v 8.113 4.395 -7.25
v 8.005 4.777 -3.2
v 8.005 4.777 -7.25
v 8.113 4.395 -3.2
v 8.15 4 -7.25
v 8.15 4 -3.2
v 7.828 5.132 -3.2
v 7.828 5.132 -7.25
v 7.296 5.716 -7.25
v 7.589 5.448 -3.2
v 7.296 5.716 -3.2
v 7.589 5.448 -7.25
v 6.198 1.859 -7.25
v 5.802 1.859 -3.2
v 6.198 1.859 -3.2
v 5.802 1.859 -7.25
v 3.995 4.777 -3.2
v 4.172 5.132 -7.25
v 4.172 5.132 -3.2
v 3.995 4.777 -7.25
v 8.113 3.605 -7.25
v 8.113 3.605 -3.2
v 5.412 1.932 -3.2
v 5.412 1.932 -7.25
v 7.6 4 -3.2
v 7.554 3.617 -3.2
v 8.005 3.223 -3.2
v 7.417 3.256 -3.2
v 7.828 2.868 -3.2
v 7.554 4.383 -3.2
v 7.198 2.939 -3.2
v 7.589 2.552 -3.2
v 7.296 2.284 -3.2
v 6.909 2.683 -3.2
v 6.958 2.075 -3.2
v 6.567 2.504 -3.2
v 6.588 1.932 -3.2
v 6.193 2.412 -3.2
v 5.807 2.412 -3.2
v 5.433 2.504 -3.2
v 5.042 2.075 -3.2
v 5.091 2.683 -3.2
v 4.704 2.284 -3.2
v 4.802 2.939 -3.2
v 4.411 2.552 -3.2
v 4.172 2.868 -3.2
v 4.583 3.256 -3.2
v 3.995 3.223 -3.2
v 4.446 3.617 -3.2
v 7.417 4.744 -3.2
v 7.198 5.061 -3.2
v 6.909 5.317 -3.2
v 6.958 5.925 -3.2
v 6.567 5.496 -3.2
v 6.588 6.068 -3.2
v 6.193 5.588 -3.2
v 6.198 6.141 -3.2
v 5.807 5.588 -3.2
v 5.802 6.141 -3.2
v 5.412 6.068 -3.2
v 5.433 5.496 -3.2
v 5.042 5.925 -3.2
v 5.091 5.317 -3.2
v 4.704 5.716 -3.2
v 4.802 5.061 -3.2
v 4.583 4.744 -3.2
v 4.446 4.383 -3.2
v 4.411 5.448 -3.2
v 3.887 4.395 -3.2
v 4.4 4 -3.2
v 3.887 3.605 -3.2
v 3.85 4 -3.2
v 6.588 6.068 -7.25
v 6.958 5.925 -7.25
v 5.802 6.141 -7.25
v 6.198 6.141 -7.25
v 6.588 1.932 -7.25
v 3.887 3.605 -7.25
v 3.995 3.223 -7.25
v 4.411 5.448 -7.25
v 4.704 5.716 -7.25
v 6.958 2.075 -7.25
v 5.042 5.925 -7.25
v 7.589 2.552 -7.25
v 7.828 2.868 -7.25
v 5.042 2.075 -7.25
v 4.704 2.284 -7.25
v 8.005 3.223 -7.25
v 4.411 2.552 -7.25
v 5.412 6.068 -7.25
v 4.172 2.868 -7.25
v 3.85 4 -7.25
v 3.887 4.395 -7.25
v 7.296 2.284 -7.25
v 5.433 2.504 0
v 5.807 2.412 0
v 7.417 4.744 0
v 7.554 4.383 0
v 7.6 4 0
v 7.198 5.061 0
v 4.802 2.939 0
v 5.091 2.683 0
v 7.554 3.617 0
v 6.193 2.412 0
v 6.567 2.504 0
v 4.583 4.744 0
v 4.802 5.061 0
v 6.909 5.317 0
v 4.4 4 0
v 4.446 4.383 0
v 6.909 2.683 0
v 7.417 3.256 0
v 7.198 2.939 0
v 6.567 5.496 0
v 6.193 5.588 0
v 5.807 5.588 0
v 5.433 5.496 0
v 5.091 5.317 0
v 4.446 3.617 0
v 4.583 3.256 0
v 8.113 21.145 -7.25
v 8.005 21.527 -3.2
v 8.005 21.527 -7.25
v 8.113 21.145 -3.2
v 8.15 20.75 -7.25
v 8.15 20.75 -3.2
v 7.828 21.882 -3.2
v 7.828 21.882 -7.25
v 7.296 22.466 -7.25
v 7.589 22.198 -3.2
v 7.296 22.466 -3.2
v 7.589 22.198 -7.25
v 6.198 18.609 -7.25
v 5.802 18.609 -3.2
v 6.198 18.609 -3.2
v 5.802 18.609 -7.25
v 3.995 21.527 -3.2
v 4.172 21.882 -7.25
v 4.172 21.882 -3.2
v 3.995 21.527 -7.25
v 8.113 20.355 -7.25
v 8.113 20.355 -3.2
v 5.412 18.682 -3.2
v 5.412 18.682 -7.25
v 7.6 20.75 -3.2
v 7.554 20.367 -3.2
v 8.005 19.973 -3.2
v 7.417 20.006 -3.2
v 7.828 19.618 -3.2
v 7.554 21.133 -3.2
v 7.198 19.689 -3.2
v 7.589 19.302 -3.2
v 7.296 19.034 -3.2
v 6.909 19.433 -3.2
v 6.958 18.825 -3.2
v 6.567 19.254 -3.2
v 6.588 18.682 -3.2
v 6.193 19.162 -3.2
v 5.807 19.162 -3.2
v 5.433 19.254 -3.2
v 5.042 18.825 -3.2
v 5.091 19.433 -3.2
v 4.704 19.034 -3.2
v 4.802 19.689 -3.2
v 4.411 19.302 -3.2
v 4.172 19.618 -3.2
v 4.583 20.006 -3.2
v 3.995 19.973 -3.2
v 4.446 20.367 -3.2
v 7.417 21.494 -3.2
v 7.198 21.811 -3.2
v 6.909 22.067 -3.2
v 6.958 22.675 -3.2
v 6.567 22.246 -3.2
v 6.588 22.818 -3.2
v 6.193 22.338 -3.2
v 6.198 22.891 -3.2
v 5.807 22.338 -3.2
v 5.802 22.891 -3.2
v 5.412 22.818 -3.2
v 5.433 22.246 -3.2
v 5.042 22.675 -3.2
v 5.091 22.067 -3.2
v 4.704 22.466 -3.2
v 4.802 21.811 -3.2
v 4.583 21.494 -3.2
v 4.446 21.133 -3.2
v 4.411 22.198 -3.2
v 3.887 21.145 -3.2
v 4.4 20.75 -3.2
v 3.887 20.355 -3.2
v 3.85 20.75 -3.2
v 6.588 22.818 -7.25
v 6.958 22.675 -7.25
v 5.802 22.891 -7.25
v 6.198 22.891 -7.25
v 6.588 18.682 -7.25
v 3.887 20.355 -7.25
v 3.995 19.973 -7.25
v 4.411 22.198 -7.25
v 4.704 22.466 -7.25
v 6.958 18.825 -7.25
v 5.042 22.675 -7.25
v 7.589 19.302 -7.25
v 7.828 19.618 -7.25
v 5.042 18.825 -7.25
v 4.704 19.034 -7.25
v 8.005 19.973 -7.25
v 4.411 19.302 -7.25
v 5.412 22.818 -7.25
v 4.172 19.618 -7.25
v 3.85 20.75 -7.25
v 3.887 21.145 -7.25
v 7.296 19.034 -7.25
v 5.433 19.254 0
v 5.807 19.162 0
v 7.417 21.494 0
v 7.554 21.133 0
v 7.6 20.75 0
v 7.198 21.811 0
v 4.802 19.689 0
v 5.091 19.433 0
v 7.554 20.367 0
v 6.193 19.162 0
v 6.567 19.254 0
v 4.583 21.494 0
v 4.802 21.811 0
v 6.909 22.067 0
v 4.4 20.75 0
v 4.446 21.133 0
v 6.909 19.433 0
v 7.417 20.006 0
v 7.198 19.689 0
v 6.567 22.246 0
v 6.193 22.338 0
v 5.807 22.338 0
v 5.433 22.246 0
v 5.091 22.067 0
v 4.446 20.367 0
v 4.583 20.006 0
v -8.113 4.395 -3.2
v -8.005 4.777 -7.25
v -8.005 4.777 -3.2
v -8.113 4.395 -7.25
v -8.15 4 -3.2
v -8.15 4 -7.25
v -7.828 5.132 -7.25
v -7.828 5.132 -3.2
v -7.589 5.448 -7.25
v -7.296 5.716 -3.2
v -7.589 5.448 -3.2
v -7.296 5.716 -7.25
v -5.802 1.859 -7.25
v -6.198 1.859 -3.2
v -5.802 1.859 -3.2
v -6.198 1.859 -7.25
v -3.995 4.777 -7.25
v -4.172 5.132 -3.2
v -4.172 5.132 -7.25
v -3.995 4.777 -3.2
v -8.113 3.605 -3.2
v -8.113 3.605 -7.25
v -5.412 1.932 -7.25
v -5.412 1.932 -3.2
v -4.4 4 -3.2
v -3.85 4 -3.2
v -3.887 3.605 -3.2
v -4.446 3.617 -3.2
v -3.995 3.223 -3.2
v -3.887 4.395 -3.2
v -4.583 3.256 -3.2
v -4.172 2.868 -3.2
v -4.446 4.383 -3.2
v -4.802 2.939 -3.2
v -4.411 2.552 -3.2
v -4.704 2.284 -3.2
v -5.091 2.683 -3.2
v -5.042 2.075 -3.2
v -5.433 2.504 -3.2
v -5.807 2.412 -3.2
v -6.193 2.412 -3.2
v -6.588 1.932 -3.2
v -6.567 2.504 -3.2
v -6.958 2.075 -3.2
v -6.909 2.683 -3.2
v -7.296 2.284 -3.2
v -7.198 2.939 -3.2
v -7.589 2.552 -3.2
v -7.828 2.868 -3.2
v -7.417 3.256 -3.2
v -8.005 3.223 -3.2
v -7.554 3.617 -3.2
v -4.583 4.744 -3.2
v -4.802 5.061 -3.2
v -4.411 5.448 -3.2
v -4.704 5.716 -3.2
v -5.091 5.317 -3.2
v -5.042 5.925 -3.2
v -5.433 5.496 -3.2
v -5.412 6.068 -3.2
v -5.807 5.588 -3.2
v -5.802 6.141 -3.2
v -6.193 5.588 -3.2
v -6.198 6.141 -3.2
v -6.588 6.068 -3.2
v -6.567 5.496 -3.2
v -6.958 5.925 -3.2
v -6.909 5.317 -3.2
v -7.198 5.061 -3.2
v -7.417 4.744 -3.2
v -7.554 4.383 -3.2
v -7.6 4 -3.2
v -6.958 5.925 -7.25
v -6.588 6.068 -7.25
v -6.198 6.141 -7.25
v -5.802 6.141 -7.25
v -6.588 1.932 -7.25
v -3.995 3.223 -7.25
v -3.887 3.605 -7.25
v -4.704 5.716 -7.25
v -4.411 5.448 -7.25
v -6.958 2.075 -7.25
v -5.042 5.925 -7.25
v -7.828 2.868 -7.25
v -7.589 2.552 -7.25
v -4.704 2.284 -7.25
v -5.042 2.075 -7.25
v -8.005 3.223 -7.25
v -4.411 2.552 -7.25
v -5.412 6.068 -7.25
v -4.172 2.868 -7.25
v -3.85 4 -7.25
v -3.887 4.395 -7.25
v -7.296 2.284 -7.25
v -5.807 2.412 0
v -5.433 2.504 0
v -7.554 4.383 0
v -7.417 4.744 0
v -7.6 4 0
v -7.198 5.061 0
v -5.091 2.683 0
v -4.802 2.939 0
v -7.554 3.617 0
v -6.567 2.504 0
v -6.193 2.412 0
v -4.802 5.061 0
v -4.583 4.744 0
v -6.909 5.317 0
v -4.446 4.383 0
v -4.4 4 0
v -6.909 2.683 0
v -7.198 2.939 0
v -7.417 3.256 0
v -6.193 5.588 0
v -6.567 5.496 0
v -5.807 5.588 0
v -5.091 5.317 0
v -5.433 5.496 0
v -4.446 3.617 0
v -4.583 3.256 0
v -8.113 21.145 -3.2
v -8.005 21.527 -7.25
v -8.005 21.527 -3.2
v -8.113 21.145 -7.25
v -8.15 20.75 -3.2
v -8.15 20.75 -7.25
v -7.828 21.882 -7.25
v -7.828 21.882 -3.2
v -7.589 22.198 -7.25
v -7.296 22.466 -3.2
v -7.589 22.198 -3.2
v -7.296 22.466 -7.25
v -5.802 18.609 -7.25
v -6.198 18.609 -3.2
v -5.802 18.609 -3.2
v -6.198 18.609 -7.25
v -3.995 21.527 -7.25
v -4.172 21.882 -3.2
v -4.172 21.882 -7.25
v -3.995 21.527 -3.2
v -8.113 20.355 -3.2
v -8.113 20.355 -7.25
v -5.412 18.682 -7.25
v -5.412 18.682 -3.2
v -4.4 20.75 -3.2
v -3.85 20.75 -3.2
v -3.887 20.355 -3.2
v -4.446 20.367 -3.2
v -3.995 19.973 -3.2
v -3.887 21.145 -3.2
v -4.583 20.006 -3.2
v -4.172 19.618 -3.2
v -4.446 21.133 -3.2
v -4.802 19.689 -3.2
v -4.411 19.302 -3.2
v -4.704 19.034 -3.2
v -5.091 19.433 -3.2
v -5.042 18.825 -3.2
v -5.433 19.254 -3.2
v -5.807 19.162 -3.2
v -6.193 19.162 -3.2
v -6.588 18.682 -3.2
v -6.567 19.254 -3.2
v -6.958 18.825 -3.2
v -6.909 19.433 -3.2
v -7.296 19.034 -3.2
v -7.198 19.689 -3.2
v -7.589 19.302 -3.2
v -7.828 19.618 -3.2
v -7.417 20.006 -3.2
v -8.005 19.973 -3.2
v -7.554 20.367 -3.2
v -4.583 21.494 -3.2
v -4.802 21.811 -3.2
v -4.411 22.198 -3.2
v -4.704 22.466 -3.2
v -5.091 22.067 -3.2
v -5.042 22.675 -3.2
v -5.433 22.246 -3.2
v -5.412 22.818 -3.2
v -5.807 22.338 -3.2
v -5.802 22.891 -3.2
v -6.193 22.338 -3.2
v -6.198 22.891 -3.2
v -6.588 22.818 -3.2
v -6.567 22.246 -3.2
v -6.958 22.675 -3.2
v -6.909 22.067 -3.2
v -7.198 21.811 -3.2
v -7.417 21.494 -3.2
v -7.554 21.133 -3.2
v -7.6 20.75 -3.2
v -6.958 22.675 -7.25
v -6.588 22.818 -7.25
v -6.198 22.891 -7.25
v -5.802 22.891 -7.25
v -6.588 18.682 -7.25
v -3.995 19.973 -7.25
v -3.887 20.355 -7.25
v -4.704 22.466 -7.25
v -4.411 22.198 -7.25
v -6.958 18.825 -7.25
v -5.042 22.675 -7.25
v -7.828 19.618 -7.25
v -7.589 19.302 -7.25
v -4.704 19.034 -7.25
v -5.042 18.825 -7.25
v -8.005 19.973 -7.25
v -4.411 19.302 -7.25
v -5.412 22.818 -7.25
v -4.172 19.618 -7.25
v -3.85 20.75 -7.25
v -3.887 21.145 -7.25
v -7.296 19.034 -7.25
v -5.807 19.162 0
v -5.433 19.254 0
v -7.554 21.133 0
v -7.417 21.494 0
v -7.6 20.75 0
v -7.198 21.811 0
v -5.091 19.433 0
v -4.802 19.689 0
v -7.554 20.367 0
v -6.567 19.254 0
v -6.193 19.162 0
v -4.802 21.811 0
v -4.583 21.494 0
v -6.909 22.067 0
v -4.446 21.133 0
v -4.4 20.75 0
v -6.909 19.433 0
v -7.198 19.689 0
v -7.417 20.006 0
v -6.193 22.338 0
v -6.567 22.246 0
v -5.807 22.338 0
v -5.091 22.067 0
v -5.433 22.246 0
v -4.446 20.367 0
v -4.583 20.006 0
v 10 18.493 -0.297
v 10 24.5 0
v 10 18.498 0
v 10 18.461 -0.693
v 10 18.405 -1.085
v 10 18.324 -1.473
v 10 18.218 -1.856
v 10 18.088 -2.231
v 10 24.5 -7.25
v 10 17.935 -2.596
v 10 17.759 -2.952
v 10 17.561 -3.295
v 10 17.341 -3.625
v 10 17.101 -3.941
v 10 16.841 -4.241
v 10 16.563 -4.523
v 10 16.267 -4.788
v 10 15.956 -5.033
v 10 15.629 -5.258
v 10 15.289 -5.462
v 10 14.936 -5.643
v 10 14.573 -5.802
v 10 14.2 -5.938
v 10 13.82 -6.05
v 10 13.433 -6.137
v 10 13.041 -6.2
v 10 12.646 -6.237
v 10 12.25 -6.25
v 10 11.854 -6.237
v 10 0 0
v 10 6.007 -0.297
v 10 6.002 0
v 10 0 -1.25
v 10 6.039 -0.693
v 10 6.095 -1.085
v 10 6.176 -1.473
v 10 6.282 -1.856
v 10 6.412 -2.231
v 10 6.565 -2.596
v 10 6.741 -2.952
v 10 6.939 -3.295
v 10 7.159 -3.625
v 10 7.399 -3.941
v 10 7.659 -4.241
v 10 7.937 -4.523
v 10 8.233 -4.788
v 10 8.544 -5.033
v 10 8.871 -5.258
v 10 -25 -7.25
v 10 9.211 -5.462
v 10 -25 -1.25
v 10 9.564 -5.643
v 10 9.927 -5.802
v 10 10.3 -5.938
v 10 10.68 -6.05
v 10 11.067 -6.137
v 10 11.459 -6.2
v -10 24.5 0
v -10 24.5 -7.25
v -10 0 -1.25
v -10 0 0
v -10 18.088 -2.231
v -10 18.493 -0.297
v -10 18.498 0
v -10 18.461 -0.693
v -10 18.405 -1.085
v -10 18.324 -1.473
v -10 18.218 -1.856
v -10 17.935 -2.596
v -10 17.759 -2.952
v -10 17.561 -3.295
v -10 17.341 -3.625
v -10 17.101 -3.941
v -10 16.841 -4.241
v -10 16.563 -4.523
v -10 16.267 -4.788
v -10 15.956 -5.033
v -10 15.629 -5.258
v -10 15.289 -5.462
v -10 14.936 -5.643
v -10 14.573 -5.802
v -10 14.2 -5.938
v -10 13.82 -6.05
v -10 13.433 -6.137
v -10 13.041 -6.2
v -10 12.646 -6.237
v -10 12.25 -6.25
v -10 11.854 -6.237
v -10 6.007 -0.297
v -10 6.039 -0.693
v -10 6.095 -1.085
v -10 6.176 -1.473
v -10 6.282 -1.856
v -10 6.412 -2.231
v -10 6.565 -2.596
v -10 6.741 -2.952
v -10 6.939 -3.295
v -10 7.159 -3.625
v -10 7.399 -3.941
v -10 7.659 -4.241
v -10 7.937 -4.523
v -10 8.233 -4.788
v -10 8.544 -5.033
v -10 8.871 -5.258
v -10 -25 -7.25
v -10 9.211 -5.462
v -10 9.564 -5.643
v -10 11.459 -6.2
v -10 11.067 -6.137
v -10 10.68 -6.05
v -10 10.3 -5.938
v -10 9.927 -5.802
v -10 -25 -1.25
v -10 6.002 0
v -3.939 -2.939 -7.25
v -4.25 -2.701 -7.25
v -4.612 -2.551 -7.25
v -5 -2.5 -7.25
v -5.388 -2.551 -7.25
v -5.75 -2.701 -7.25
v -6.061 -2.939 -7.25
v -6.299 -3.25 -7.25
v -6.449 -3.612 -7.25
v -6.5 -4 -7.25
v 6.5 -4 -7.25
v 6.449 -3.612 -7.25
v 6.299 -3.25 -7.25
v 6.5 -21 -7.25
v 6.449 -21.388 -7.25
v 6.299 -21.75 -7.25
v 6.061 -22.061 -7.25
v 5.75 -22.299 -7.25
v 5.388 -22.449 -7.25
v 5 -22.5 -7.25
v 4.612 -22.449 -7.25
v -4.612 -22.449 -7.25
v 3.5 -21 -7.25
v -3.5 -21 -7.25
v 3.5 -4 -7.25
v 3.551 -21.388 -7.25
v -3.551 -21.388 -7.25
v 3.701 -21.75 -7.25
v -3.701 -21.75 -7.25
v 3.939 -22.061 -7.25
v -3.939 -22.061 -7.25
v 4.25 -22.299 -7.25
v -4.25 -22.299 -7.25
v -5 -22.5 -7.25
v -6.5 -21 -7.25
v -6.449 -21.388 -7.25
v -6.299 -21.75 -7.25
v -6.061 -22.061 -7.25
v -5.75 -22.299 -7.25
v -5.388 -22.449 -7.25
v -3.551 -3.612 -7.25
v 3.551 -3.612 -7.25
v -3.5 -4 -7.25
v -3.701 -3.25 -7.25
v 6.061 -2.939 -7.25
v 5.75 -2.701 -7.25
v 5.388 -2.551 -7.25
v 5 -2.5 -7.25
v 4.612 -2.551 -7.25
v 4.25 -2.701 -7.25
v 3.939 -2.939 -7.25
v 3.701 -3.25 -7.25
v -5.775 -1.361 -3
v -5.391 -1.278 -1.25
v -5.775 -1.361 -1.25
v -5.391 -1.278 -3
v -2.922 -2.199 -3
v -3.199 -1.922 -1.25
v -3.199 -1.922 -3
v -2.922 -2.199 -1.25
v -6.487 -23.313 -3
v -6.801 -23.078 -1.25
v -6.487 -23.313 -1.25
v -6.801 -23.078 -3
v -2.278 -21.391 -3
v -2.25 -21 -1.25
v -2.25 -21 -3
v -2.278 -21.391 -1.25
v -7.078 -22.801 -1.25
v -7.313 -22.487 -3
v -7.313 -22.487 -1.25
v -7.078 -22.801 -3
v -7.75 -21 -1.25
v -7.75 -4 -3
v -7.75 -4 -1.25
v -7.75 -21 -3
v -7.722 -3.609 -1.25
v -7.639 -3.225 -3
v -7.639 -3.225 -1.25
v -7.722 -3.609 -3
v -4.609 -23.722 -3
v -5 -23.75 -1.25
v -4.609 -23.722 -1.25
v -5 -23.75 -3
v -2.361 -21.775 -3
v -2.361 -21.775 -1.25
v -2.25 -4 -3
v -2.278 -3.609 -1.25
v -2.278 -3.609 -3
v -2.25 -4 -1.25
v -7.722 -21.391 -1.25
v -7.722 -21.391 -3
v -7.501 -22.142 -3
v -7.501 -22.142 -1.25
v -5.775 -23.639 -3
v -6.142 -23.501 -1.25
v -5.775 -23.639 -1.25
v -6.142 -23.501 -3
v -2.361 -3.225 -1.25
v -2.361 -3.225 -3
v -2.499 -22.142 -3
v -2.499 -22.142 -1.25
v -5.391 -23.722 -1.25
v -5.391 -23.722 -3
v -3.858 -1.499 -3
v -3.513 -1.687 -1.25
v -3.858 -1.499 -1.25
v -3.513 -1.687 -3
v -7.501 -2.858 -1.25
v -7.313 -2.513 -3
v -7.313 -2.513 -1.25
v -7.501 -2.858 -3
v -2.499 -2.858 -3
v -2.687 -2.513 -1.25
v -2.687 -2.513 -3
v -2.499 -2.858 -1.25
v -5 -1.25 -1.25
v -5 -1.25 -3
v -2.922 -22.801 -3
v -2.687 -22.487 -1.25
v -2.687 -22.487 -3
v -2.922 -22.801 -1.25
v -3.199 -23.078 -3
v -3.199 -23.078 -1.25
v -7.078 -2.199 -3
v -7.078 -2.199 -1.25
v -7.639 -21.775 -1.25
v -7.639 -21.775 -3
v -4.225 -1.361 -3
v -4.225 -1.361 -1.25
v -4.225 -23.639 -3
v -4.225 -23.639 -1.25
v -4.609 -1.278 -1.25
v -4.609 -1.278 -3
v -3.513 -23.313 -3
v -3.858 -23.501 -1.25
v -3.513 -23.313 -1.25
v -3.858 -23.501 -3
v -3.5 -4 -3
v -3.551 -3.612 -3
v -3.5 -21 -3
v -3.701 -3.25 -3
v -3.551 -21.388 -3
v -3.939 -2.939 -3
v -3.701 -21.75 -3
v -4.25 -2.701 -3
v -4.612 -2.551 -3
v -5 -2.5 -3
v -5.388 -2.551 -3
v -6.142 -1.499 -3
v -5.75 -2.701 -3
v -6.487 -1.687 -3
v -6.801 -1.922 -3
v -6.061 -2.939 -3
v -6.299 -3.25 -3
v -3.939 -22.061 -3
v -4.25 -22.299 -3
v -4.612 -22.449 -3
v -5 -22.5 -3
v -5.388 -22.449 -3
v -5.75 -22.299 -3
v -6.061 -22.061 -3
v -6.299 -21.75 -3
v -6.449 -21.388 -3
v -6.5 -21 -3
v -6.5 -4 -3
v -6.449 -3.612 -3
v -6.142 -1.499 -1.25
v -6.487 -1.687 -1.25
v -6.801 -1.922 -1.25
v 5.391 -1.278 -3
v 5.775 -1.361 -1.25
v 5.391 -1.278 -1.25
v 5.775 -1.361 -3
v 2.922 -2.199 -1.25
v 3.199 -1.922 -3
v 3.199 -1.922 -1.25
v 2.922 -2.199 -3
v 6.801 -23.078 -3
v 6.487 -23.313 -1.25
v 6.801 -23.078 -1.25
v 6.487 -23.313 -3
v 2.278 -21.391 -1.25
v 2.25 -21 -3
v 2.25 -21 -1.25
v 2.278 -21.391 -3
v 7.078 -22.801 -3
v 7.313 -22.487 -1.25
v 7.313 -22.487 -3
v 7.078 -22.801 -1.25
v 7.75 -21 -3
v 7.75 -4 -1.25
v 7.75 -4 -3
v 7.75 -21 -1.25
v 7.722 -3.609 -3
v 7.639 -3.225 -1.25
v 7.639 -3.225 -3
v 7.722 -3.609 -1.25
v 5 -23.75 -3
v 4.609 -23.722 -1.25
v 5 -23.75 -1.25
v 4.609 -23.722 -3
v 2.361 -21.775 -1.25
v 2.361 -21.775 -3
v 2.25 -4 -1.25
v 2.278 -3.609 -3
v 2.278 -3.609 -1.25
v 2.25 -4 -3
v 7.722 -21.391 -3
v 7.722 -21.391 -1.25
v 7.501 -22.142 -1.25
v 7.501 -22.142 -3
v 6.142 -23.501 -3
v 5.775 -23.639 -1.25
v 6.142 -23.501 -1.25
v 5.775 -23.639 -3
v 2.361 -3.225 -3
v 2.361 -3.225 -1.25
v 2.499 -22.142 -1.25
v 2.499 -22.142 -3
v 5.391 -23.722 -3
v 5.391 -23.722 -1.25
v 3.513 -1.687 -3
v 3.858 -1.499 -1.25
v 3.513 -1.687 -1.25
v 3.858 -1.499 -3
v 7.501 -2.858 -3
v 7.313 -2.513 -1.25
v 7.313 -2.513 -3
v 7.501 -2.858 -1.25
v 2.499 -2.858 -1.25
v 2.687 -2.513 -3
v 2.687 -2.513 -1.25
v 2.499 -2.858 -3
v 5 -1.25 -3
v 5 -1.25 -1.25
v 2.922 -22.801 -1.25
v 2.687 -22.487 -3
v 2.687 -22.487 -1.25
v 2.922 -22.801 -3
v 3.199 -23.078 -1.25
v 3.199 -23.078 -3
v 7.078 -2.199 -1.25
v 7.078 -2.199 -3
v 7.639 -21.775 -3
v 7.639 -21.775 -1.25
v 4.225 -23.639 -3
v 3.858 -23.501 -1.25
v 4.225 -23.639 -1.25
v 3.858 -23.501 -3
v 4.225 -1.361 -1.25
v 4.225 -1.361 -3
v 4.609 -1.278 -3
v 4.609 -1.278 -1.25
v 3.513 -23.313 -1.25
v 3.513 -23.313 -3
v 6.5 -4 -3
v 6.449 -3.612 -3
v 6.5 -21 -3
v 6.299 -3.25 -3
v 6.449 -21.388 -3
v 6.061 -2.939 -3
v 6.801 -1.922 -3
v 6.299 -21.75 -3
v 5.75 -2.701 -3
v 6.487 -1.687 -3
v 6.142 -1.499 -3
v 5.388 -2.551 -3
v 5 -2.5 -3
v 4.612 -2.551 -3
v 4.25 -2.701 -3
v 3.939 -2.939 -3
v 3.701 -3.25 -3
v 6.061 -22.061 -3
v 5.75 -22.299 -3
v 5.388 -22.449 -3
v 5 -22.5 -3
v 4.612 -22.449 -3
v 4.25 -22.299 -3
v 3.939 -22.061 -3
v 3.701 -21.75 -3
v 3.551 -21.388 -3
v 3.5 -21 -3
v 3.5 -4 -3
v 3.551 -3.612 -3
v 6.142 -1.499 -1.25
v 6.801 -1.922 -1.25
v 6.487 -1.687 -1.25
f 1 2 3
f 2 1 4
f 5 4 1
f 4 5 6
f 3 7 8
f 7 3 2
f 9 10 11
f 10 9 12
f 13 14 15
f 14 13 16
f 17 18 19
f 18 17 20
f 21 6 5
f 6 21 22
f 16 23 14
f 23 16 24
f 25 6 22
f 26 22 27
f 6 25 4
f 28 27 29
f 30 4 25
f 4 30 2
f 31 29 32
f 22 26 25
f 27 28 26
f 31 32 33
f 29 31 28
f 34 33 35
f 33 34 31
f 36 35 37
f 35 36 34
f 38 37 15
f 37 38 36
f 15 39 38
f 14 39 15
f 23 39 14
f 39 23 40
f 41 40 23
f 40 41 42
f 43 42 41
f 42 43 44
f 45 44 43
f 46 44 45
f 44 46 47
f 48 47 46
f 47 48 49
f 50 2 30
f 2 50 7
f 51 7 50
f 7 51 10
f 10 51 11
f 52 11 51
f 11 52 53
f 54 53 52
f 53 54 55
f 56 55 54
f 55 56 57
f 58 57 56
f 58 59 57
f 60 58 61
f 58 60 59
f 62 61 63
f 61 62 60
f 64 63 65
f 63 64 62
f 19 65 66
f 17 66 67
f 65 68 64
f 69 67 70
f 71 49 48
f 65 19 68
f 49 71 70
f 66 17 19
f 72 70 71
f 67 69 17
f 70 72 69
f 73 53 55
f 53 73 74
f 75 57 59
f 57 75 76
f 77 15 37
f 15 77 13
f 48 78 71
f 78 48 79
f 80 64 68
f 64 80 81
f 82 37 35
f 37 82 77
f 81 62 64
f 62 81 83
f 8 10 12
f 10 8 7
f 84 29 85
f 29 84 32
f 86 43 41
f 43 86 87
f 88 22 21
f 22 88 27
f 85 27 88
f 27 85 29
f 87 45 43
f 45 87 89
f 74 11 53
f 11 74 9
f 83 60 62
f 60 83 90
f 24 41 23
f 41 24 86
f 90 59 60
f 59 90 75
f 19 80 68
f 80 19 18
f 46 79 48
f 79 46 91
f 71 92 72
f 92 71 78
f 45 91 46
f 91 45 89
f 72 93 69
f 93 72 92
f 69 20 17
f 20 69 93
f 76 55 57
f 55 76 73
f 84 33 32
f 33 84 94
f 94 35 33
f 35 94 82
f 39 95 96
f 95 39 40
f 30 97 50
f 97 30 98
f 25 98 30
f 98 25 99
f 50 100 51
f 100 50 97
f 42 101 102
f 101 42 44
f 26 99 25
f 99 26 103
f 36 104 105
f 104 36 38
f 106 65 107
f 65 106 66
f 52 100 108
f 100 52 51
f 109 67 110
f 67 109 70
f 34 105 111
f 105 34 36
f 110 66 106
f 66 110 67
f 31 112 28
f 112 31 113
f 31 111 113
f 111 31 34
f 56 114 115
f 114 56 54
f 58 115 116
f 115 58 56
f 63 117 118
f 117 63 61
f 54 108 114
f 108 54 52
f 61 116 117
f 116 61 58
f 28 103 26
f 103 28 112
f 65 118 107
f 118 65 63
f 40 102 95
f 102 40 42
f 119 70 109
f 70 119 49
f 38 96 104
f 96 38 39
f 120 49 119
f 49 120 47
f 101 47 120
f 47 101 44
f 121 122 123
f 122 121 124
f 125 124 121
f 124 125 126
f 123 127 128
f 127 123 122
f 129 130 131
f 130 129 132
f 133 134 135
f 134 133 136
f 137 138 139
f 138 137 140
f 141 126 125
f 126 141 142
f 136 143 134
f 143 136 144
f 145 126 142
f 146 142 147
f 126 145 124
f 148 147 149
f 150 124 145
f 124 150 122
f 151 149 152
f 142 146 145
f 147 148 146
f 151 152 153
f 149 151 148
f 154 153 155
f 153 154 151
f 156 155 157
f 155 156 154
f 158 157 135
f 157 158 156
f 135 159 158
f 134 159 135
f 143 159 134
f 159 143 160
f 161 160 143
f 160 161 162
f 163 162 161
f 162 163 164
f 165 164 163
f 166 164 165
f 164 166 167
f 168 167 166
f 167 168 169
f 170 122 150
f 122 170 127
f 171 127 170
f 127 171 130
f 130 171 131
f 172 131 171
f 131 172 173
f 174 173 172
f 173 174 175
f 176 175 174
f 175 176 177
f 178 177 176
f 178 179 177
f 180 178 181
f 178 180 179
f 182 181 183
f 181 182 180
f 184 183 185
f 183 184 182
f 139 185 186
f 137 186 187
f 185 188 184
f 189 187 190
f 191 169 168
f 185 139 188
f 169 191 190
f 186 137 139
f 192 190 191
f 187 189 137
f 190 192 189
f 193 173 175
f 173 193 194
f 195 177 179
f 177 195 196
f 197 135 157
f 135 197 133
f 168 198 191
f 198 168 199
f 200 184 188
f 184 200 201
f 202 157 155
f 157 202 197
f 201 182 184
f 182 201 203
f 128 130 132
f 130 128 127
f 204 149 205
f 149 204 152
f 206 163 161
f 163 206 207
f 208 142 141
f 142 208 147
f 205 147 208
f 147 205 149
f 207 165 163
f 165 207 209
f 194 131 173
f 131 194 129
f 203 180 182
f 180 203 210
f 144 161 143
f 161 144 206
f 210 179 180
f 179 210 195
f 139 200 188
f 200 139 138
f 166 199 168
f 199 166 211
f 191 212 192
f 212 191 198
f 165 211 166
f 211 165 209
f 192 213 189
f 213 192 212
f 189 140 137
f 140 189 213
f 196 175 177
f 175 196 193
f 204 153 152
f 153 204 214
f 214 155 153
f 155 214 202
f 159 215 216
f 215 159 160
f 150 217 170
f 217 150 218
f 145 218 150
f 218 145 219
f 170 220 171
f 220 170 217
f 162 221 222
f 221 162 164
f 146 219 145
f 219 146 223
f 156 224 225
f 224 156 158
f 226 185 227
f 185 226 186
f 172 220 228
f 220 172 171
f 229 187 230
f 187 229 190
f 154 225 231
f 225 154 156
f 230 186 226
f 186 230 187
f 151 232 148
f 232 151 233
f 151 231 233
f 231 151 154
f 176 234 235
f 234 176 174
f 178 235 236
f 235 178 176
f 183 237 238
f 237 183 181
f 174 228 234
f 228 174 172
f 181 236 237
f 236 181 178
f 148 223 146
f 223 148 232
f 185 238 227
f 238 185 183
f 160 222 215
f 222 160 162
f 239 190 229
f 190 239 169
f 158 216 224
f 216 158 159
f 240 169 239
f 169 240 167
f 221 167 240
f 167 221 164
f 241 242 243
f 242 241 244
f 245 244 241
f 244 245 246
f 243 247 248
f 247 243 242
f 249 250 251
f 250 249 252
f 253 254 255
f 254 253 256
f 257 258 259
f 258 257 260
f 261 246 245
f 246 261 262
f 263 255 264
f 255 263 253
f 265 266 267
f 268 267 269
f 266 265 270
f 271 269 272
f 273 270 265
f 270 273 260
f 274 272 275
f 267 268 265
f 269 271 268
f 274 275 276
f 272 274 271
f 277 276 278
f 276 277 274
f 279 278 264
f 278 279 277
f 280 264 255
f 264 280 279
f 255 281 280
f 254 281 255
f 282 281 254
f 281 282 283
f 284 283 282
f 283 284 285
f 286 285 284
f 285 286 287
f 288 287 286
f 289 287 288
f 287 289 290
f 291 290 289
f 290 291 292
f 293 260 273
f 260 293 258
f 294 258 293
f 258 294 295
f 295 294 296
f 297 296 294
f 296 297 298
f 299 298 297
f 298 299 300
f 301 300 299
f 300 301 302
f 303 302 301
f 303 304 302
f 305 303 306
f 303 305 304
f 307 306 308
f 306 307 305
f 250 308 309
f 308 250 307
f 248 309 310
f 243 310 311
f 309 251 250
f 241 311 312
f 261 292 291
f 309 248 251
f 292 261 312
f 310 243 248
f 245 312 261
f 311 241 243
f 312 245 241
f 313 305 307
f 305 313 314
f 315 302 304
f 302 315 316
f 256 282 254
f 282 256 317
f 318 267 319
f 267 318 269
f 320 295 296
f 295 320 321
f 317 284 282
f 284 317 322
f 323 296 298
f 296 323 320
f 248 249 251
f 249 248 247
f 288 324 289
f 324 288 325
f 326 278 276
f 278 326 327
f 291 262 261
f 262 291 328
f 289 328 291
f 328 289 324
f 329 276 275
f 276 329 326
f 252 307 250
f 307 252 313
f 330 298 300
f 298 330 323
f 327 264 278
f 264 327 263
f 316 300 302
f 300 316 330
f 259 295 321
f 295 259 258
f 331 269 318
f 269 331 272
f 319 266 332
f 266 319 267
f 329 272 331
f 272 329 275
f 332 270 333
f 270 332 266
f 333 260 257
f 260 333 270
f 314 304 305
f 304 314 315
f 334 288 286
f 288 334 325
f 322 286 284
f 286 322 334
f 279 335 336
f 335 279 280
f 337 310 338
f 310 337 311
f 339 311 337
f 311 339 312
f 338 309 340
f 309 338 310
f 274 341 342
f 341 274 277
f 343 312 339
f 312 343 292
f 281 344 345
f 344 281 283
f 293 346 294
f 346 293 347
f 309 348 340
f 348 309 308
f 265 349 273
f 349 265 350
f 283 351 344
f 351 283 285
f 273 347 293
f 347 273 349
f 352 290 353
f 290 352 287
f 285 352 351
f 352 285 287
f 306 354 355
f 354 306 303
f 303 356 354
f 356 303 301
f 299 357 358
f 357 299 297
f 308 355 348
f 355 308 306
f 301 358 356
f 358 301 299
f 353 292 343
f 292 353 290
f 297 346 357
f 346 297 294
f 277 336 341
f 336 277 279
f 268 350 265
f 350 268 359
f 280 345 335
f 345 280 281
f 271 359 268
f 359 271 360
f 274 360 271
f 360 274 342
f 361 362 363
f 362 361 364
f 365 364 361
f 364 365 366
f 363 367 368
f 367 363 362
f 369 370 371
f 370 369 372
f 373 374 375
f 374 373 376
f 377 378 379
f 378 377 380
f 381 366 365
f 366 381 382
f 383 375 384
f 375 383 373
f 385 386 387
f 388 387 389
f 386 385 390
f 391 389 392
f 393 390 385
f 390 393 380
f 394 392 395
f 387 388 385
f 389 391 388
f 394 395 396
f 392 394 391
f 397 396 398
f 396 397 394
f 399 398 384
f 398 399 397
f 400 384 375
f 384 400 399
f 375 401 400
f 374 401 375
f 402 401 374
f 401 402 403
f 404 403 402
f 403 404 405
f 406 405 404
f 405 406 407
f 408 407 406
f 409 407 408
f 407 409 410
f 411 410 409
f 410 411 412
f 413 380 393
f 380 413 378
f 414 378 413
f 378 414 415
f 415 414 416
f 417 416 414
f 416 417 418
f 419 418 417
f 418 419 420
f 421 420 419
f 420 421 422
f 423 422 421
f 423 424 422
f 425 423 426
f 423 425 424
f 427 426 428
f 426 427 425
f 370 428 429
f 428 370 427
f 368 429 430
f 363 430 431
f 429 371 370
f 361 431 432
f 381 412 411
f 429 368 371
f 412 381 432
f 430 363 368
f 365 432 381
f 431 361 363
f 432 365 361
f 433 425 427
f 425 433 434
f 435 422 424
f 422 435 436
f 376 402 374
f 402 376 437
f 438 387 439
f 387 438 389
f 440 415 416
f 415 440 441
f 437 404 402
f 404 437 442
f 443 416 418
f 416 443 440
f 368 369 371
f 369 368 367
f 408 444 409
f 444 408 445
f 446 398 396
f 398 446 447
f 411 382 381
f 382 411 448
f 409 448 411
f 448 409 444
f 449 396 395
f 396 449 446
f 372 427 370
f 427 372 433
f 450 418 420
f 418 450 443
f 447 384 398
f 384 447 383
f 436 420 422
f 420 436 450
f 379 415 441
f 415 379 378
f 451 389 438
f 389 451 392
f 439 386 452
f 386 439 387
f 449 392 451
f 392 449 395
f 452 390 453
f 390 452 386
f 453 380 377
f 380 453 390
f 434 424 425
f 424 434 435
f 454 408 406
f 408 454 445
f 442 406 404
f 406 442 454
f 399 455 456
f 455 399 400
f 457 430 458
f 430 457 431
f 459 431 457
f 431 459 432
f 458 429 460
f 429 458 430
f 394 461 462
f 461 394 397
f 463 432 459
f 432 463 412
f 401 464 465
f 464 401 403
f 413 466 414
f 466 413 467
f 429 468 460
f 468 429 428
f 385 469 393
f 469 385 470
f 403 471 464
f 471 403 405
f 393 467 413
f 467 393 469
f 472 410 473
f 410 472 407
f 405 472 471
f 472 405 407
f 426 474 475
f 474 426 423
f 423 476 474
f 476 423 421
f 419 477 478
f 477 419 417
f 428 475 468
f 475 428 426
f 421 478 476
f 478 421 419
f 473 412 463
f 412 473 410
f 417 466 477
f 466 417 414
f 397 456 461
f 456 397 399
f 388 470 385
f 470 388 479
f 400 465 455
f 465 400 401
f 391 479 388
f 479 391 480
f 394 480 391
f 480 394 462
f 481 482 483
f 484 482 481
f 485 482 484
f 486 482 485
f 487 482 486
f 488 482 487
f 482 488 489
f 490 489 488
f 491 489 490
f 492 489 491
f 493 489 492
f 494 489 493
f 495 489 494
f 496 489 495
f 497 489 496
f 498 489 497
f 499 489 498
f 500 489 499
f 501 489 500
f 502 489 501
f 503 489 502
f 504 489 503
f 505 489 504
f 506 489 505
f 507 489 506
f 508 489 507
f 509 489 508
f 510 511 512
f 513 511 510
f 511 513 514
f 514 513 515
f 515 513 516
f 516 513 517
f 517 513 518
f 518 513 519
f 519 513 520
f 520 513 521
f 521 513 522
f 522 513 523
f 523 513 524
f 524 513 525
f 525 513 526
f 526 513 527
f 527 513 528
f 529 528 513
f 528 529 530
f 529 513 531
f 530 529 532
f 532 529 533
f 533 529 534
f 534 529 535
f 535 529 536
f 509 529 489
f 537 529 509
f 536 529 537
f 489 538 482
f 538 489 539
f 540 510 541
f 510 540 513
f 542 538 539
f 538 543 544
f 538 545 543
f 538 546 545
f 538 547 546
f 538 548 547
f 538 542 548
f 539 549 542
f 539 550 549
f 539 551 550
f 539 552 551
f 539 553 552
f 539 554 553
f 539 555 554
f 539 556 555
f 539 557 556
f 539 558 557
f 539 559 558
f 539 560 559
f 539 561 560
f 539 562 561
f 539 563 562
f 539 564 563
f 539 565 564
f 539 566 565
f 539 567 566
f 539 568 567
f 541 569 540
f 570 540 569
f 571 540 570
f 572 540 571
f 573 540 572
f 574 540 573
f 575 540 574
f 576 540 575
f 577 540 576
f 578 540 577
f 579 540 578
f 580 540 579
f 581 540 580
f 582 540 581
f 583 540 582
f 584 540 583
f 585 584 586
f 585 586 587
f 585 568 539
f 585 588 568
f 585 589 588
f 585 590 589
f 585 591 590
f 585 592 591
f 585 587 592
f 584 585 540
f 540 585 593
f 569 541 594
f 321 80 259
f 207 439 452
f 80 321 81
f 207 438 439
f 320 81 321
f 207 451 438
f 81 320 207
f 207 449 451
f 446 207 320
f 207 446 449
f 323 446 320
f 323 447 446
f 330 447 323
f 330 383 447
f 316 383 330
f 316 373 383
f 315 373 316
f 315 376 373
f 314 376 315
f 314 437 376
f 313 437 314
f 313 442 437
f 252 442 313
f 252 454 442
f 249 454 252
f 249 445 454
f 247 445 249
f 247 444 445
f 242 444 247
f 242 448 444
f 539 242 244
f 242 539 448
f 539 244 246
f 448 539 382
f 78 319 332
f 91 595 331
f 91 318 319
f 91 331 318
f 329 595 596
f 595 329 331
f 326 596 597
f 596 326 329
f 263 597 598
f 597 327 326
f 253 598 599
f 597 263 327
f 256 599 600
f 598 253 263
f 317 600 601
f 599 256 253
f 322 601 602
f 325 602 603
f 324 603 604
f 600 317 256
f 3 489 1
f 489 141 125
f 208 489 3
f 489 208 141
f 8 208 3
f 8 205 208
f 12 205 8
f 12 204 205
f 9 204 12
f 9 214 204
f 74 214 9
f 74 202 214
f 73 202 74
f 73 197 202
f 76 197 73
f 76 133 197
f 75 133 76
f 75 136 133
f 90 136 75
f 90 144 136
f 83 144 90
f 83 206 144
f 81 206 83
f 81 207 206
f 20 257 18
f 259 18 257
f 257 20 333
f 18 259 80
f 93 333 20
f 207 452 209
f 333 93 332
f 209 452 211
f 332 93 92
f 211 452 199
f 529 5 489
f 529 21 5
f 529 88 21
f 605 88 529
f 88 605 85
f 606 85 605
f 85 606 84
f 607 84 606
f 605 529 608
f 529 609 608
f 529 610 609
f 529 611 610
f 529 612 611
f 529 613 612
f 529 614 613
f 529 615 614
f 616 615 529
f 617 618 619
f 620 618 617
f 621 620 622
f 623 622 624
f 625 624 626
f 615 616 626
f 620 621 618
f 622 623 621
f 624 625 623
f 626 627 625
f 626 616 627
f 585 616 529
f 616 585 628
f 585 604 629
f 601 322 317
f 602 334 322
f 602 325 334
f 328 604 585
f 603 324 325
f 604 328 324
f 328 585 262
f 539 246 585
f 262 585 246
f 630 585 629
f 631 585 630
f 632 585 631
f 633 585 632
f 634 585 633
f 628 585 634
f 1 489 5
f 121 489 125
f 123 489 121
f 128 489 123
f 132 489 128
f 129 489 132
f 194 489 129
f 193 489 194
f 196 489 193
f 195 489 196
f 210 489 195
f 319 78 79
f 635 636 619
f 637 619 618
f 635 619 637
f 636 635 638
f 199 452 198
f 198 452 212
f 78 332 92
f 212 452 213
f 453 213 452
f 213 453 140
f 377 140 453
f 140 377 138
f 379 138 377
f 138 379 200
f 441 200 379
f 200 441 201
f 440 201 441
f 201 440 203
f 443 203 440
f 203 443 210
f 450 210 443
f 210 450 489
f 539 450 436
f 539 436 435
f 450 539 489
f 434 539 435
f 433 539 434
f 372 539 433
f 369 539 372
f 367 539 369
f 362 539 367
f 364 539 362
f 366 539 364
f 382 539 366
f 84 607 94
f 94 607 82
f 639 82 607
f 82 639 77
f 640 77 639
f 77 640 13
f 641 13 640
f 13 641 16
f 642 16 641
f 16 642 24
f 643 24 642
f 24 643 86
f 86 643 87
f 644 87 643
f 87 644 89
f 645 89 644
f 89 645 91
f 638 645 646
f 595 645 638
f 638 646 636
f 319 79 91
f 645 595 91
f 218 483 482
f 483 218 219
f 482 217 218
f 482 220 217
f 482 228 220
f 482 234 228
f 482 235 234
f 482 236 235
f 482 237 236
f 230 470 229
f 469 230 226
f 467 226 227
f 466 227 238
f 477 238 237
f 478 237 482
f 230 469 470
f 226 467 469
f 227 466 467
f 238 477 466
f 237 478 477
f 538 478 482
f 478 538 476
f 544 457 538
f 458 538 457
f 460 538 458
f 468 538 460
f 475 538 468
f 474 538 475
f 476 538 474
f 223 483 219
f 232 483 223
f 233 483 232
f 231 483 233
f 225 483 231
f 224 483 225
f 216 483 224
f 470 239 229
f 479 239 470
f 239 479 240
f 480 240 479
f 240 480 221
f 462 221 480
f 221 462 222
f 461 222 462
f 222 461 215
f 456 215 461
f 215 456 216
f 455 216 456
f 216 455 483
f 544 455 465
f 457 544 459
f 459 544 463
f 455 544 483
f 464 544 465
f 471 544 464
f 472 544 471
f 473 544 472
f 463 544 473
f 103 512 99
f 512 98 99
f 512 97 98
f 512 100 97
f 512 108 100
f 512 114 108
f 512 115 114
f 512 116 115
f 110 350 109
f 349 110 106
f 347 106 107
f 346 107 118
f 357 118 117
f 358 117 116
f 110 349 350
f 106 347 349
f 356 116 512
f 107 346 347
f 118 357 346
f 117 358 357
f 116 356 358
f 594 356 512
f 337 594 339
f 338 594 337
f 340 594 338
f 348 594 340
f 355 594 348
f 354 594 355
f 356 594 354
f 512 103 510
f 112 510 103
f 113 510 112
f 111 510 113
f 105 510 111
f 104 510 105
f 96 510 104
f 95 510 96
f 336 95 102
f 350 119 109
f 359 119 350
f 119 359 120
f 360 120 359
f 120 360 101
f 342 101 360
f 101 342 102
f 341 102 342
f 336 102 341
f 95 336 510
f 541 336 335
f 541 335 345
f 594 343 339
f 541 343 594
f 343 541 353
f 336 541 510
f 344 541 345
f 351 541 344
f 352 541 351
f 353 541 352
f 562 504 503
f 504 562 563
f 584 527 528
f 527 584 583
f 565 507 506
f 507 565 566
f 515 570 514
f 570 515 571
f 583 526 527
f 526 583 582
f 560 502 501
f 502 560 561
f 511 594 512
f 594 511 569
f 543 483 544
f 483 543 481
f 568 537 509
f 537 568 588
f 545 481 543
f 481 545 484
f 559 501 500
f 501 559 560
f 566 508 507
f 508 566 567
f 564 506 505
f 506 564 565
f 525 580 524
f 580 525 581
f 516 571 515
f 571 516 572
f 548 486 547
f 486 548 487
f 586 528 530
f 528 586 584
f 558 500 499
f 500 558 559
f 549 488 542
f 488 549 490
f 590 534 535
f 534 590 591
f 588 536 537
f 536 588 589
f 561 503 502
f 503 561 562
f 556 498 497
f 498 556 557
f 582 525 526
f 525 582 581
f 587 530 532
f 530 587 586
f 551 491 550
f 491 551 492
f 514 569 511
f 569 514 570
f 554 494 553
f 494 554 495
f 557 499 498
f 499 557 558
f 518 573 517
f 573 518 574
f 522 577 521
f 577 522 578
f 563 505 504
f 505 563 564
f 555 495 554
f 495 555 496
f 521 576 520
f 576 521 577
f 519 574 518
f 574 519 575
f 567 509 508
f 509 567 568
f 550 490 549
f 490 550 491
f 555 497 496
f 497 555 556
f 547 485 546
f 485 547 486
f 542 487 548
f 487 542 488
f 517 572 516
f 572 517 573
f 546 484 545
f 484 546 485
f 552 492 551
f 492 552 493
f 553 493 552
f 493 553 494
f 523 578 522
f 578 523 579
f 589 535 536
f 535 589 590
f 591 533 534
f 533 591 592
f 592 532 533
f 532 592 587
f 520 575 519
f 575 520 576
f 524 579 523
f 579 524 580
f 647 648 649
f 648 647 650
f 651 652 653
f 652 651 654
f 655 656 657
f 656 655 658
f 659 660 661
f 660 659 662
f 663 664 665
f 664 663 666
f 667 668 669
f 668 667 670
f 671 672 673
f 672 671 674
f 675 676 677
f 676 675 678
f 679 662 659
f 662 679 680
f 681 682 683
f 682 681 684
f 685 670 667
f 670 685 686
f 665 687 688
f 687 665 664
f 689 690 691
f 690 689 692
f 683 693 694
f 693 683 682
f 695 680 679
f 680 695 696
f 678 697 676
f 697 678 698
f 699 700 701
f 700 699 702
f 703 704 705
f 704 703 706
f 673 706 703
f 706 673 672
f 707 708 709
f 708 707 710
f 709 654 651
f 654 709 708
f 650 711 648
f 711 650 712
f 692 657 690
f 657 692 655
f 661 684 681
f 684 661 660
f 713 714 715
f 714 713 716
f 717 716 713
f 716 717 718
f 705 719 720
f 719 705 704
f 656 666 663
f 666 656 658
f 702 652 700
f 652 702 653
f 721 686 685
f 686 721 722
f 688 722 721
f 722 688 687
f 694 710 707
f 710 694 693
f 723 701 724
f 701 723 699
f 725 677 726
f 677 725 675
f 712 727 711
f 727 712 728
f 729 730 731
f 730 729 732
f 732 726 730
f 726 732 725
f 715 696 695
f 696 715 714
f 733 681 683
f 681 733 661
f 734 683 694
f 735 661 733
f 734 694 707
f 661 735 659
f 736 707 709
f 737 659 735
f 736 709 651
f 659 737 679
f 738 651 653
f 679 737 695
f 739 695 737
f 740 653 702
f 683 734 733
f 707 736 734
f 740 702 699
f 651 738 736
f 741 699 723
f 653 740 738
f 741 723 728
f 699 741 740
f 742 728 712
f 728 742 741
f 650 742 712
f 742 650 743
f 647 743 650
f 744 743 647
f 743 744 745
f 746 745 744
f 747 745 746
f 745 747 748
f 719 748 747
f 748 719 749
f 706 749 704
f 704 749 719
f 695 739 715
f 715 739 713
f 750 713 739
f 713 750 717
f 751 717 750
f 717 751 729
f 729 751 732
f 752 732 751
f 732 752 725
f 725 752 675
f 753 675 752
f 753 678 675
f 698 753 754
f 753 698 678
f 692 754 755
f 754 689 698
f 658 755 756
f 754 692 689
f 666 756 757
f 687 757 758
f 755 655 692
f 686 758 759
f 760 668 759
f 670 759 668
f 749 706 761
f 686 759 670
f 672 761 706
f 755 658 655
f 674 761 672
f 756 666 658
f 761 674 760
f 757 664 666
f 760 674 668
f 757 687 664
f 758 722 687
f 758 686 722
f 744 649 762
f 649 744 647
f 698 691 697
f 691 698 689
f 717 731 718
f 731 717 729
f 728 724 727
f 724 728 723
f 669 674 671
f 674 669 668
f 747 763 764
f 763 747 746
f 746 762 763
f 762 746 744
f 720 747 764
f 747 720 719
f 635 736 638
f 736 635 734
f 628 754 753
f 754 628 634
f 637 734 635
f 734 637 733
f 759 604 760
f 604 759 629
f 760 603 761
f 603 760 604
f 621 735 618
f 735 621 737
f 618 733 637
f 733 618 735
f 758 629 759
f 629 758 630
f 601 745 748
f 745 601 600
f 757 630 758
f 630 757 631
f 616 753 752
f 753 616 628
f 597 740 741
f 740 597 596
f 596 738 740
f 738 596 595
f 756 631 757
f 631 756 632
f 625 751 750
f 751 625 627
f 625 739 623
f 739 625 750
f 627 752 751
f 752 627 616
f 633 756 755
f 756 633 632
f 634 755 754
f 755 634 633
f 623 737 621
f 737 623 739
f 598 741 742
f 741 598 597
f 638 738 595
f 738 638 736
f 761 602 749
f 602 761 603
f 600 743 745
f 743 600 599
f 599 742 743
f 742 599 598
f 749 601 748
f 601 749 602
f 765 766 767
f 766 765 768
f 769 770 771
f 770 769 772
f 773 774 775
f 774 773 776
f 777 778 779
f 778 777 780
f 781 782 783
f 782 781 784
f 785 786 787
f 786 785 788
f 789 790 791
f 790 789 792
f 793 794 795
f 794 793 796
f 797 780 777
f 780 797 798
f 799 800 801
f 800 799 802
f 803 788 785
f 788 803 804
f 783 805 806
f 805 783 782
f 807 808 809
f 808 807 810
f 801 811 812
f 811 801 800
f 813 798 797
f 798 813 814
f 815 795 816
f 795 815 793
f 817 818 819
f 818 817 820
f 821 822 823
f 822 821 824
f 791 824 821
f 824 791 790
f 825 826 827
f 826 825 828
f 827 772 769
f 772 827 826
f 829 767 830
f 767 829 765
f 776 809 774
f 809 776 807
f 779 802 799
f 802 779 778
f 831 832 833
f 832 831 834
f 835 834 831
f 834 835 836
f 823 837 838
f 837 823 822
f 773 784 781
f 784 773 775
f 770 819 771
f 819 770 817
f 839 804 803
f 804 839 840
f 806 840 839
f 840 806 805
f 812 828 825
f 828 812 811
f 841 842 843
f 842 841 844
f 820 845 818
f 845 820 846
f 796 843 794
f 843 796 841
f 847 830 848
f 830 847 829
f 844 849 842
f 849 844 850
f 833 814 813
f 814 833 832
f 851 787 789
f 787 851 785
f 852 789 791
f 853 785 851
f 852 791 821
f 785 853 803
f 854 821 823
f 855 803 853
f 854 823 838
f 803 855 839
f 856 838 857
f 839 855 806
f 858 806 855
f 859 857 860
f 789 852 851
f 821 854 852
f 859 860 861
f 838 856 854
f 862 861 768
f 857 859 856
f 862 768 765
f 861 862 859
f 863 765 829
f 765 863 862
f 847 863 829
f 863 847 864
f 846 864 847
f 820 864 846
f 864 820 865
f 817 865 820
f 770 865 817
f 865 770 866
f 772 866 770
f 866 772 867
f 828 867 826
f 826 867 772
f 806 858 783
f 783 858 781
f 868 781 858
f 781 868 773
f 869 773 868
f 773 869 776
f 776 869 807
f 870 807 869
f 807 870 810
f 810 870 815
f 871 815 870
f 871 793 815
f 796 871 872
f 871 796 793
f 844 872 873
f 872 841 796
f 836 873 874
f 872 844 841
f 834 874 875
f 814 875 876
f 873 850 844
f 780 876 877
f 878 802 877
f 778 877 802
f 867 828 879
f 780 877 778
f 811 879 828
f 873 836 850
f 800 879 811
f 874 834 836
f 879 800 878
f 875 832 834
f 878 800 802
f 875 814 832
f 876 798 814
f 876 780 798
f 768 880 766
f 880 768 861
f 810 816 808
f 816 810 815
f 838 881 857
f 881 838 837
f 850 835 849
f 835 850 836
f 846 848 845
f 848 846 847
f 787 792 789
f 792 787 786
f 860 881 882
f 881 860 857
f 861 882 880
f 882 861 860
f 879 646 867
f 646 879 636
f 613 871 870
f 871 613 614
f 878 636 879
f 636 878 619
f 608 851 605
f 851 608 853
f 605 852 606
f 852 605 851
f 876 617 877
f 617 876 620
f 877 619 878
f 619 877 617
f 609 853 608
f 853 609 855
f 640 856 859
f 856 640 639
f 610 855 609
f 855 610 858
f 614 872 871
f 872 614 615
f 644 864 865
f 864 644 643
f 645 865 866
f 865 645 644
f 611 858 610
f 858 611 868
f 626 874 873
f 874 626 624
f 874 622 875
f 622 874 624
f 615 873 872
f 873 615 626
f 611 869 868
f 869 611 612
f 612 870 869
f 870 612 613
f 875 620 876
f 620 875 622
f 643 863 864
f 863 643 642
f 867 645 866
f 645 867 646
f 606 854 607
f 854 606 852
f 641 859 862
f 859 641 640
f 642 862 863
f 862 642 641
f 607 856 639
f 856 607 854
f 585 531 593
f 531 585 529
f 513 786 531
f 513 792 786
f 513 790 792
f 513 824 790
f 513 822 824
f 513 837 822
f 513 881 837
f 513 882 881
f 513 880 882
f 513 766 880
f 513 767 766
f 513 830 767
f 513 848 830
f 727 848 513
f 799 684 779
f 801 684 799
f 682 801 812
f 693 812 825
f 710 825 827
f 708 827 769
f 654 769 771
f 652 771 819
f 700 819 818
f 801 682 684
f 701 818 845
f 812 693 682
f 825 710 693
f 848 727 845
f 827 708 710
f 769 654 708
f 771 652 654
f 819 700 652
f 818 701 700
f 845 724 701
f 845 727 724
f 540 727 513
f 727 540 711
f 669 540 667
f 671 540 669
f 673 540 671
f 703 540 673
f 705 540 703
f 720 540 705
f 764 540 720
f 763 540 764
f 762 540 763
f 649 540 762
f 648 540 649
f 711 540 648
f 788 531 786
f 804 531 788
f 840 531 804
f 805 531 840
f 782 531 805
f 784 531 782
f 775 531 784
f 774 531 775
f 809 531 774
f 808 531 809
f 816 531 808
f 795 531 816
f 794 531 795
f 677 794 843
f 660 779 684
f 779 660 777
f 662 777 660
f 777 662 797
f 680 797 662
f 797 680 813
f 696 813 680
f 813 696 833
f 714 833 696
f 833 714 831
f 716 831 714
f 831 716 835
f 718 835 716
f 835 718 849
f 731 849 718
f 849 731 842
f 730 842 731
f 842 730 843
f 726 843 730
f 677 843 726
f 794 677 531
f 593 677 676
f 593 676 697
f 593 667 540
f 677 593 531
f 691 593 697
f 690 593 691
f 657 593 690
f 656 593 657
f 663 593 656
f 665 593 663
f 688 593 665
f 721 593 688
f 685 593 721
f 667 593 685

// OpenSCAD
// file: ../../ref/vendor/_linear_rail.scad
include <../components.scad>

module ref_linear_rail(l,h,w,E,P) {
    // w_r = 12;
    // h_r = 8;
    // D = 6;
    // h = 3.4;
    // d = 3.5;
    // P = 25;
    // E = 10;
    module rail_end() {
        difference() {
            cube([E, h, w], center=true);
            rotate([270,0,0])
                translate([E/2, 0, -h/2])
                    bolt_shcs_m3(h=w);
        }
    }
    module rail_sect() {
        difference() {
            cube([P, h, w], center=true);
            rotate([270,0,0]) {
                translate([P/2, 0, -(h/2)])
                    bolt_shcs_m3(h=h);
                translate([-P/2, 0, -(h/2)])
                    bolt_shcs_m3(h=w);
            }
        }
    }

    tot_length = (l - (E*2));
    // echo(tot_length);
    sect_length = tot_length - (tot_length % P);
    // echo(sect_length);
    sect_count = sect_length/P;
    // echo(sect_count);

    translate([(sect_length/2 + E*2-2.5),0,0])
        rotate([0,180,0])
        rail_end();
    translate([-(sect_length/2 + E*2-2.5),0,0])
        rail_end();

    translate([-sect_length/2,0,0])
        for(i = [0:1:sect_count]) {
            translate([P*i,0,0])
                rail_sect();
        }
}

module ref_linear_rail_carriage(l,w,h,c,b) {
    // w = 27;
    // b = 20;
    // b_1 = 3.5;
    // c = 20;
    // l_1 = 32.4;
    // l = 45.4;
    // h = 10;

    translate([0,-3,0])
    difference() {
        cube([l, h, w], center=true);
        rotate([90,0,0]) {
            translate([0,0,5]) {
                translate([c/2,b/2,-3]) // top right
                    bolt(d=3, h=20);
                translate([c/2,-b/2,0]) // bottom right
                    bolt(d=3, h=20);
                translate([-c/2,b/2,0]) // top left
                    bolt(d=3, h=20);
                translate([-c/2,-b/2,0]) // bottom left
                    bolt(d=3, h=20);
            }
        }
    }
}
// file: ../../ref/vendor/linear_rails.scad
include <./_linear_rail.scad>

module ven_mgn12h() {
    color([0.2,0.2,0.2])
        ref_linear_rail(l=300,h=3.4,w=12,E=10,P=25);
    color([0.4,0.4,0.4])
        ref_linear_rail_carriage(l=45.4,w=27,h=10,c=20,b=20);
}

module ven_mgn9h() {
    color([0.2,0.2,0.2])
        ref_linear_rail(l=160,h=3.5,w=9,E=7.5,P=20);
    color([0.4,0.4,0.4])
        ref_linear_rail_carriage(l=39.9,w=20,h=8,c=16,b=15);
}
// file: ../../ref/vendor/fans.scad
module ven_fan4010() {
    module _4010_corner() {
        difference() {
            cube([20,20,10]);
            translate([32/2+1.5,32/2+1.5,4]) { // Top corner
                cylinder(d=5,h=10);
                translate([-2.5,0,0])
                    cube([5,10,10]);
                translate([0,-2.5,0])
                    cube([10,5,10]);
                translate([2.5,2.5,0])
                    cube([7.5,7.5,10]);
            }
        }
    }
    difference() {
        union() {
            _4010_corner();
            mirror([1,0,0])
                _4010_corner();
            mirror([0,1,0])
                _4010_corner();
            mirror([1,1,0])
                _4010_corner();
        }
        translate([0,5,2.01])
            cylinder(d=28, h=8);
    }
}

module ven_fan2510() {
    cube([25, 25, 10]);
}
// file: ../../ref/components/bolts.scad
module bolt(d, h=8) {
    cylinder(d=d, h=h, center=true);
}

module _bolt_v(d,hh=0,r=0.2) {
    vh = r*5;
    vz = hh+(vh/2);
    difference() {
        translate([0,0,vz])
            cylinder(d=d + 0.01, h=vh, center=true);
        rotate([0,0,0]) {
            translate([d/2,0,vz])
                cube([d/2,d,vh+0.01],center=true);
            translate([-d/2,0,vz])
                cube([d/2,d,vh+0.01],center=true);
        }
        rotate([0,0,0]) {
            translate([0,d/2,vz+r*2])
                cube([d,d/2,1],center=true);
            translate([0,-d/2,vz+r*2])
                cube([d,d/2,vh+0.01],center=true);
        }
        rotate([0,0,45]) {
            translate([0,d/2,vz+r*3])
                cube([d,d/2,vh+0.01],center=true);
            translate([0,-d/2,vz+r*3])
                cube([6,3,vh+0.01],center=true);
        }
        rotate([0,0,-45]) {
            translate([0,d/2,vz+r*4])
                cube([d,d/2,vh+0.01],center=true);
            translate([0,-d/2,vz+r*4])
                cube([d,d/2,vh+0.01],center=true);
        }
    }
}

module bolt_shcs(hd,hh,td,th,
        he, v=false, r=0.2) {
    // hd = head diameter
    // hh = head height
    // td = thread diameter
    // th = thread height
    // he = head extension
    // v = vertical supports
    // r = support resolution
    union() {
        translate([0,0,hh/2-0.01]) // Socket head
            cylinder(d=hd + 0.01, h=hh + 0.05, center=true);
        if (he>0) {
            translate([0,0,-he/2]) // Head extension
                cylinder(d=hd+0.01,h=he,center=true);
        }
        translate([0,0,th/2+hh]) // Threading
            cylinder(d=td, h=th, center=true);
        if (v==true) {
            _bolt_v(hd,hh,r);
        }
    }
}

module bolt_shcs_m2_5(h=8,v=false,r=0.2,he=0) {
    bolt_shcs(hd=5,hh=2.5,th=h,v=v,r=r,he=he);
}

module bolt_shcs_m3(h=8,v=false,r=0.2,he=0) {
    bolt_shcs(hd=6,hh=3,td=3,th=h,v=v,r=r,he=he);
}
// file: ../../ref/components/3dp.scad
module heatset(d=5,h=4,b=3,H=0) {
    // d = inset diameter
    // h = height (length)
    // b = bolt diameter
    // H = bolt height
    union() {
        translate([0,0,h/2-0.01])
            cylinder(h=h+0.02, d=d, center=true);
        translate([0,0,h+H/2 - 0.01])
            bolt(d=b, h=H);
    }
}

module heatset_m3x4(H=0) { // VORON BOM heatset
    heatset(d=4.3, h=4+0.1, b=3+0.2, H=H);
}

module ecas04() { // This is used to cut a spot for an ECAS04 fitting
    ecas04_d = 8.1;
    ecas04_d_1 = 10;
    ecas04_h = 8;
    ecas04_h_1 = 2.4;

    cylinder(d=ecas04_d + 0.3, h=ecas04_h+0.01);
    translate([0,0,0])
        cylinder(d=ecas04_d+1, h=ecas04_h-ecas04_h_1);
}
// file: ../src/hori.scad
module ck_hori() {
    module _hori_base() {
        translate([-d_hori_w/2,-d_bracket_d-2,-d_mount_h-10])
            cube([d_hori_w,d_bracket_d*2-0.25,5]);
        translate([-d_att_w/2,-d_bracket_d-5,-d_mount_h-10])
            cube([d_att_w,5,d_att_h]);
    }
    module _hori_hs() {
        translate([15,8,-d_mount_h-10])
            heatset_m3x4(H=8);
        translate([-13.5,-20,-d_mount_h-6.25])
        rotate([-90,0,0])
            heatset_m3x4(H=1);
    }

    difference() {
        _hori_base();
        _hori_hs();
        mirror([1,0,0])
            _hori_hs();
    }
}
// file: ../src/vert.scad
module ck_vert() {
    module _vert_base() {
        translate([-d_bracket_w/2,d_bracket_d/2,-d_mount_h])
            cube([d_bracket_w,d_vert_d,d_mount_h]);
        // translate([-d_bracket_w/2,0,-d_mount_h-5])
        //     cube([d_bracket_w,d_mount_d+6+1.25,5]);
        translate([-d_hori_w/2,-d_bracket_d/2,-d_mount_h-5])
            cube([d_hori_w,d_bracket_d+5,5]);
        translate([-d_hori_w/2,-d_bracket_d,-d_mount_h-5])
            cube([d_hori_w,d_bracket_d-7,5]);
    }
    module _vert_slot() {
        module _slot() {
            hull() {
                translate([15,8,-d_mount_h-3])
                    cylinder(d=5.5, h=5);
                translate([15,-10,-d_mount_h-3])
                    cylinder(d=5.5, h=5);
            }
            hull() {
                translate([15,8,-d_mount_h-8])
                    cylinder(d=3, h=10);
                translate([15,-10,-d_mount_h-8])
                    cylinder(d=3, h=10);
            }
        }
        _slot();
        mirror([1,0,0])
            _slot();
    }
    module _vert_hs() {
        rotate([90,0,0]) {
            translate([-d_bracket_w/2+5,-4,-13.5])
                heatset_m3x4(H=8);
        }
        rotate([90,0,0]) {
            translate([d_bracket_w/2-5,-4,-13.5])
                heatset_m3x4(H=8);
        }
    }
    difference() {
        _vert_base();
        _vert_slot();
        _vert_hs();
    }
}
// file: ../src/mount.scad
module ck_mount() {
    module _mount_base() {
        translate([-d_bracket_w/2,d_bracket_d/2-d_mount_d,-d_mount_h])
            cube([d_bracket_w,d_mount_d,d_mount_h]);
    }
    module _mount_slot() {
        module _slot() {
            hull() {
                translate([-d_bracket_w/2+5,-2,-4])
                rotate([-90,0,0])
                    cylinder(d=5.5, h=5);
                translate([-d_bracket_w/2+5,-2,-d_mount_h+4])
                rotate([-90,0,0])
                    cylinder(d=5.5, h=5);
            }
            hull() {
                translate([-d_bracket_w/2+5,-2,-4])
                rotate([-90,0,0])
                    cylinder(d=3, h=10);
                translate([-d_bracket_w/2+5,-2,-d_mount_h+4])
                rotate([-90,0,0])
                    cylinder(d=3, h=10);
            }
        }
        _slot();
        mirror([1,0,0])
            _slot();
    }
    difference() {
        _mount_base();
        _mount_slot();
    }
}
// file: ../src/bracket.scad
module ck_bracket_hs() {
    module _hs() {
        translate([6,7.3,4])
        rotate([90,0,0]) {
            heatset_m3x4(H=8);
            translate([0,0,15])
            rotate([180,0,0])
                bolt_shcs_m3();
        }
        translate([6,7.3,d_tube_H+d_tube_d-4])
        rotate([90,0,0]) {
            heatset_m3x4(H=8);
            translate([0,0,15])
            rotate([180,0,0])
                bolt_shcs_m3();
        }
    }
    _hs();
    mirror([1,0,0])
        _hs();
}

module ck_bracket_back() {
    // translate([-d_bracket_d/2,-(d_bracket_w/2),2])
    //     cube([d_bracket_d,d_bracket_w,d_bracket_h]);
    difference() {
        translate([-d_bracket_w/2,0,0])
            cube([d_bracket_w,d_bracket_d/2,d_bracket_h]);
        ck_tube();
        ck_bracket_hs();
    }
}
module ck_bracket_front() {
    difference() {
        translate([-d_bracket_w/2,-d_bracket_d/2,0])
            cube([d_bracket_w,d_bracket_d/2,d_bracket_h]);
        ck_tube();
        ck_bracket_hs();
    }
}
// file: ../src/tube.scad
module ck_tube() {
    translate([-25,0,d_tube_H])
    rotate([90,0,90])
        cylinder(d=d_tube_d, h=50);
}
// file: ../src/dimensions.scad
d_tube_d = 12.5;
d_tube_H = d_tube_d/2+6;
d_bracket_d = d_tube_d+2;
d_bracket_h = d_tube_d+(5*2)+2;
d_bracket_w = 20;

d_mount_h = 25;
d_mount_d = 6;

d_vert_h = 8;
d_vert_d = 5;
d_hori_w = 40;

d_att_w = 36;
d_att_d = 20;
d_att_h = 10;
// file: ../../ref/vendor.scad
include <./vendor/fans.scad>
include <./vendor/linear_rails.scad>
// file: ../../ref/components.scad
include <./components/3dp.scad>
include <./components/bolts.scad>
// file: ../src/main.scad
$fa = 1;
$fs = 0.4;

include <../../lib/Chamfer.scad>

include <../../ref/components.scad>
include <../../ref/vendor.scad>

// --- components --- //
include <./dimensions.scad>

include <./tube.scad>
include <./bracket.scad>
include <./mount.scad>
include <./vert.scad>
include <./hori.scad>
// main file
include <../src/main.scad>

rotate([-90,0,0]) {
    ck_bracket_back();
    ck_mount();
}
